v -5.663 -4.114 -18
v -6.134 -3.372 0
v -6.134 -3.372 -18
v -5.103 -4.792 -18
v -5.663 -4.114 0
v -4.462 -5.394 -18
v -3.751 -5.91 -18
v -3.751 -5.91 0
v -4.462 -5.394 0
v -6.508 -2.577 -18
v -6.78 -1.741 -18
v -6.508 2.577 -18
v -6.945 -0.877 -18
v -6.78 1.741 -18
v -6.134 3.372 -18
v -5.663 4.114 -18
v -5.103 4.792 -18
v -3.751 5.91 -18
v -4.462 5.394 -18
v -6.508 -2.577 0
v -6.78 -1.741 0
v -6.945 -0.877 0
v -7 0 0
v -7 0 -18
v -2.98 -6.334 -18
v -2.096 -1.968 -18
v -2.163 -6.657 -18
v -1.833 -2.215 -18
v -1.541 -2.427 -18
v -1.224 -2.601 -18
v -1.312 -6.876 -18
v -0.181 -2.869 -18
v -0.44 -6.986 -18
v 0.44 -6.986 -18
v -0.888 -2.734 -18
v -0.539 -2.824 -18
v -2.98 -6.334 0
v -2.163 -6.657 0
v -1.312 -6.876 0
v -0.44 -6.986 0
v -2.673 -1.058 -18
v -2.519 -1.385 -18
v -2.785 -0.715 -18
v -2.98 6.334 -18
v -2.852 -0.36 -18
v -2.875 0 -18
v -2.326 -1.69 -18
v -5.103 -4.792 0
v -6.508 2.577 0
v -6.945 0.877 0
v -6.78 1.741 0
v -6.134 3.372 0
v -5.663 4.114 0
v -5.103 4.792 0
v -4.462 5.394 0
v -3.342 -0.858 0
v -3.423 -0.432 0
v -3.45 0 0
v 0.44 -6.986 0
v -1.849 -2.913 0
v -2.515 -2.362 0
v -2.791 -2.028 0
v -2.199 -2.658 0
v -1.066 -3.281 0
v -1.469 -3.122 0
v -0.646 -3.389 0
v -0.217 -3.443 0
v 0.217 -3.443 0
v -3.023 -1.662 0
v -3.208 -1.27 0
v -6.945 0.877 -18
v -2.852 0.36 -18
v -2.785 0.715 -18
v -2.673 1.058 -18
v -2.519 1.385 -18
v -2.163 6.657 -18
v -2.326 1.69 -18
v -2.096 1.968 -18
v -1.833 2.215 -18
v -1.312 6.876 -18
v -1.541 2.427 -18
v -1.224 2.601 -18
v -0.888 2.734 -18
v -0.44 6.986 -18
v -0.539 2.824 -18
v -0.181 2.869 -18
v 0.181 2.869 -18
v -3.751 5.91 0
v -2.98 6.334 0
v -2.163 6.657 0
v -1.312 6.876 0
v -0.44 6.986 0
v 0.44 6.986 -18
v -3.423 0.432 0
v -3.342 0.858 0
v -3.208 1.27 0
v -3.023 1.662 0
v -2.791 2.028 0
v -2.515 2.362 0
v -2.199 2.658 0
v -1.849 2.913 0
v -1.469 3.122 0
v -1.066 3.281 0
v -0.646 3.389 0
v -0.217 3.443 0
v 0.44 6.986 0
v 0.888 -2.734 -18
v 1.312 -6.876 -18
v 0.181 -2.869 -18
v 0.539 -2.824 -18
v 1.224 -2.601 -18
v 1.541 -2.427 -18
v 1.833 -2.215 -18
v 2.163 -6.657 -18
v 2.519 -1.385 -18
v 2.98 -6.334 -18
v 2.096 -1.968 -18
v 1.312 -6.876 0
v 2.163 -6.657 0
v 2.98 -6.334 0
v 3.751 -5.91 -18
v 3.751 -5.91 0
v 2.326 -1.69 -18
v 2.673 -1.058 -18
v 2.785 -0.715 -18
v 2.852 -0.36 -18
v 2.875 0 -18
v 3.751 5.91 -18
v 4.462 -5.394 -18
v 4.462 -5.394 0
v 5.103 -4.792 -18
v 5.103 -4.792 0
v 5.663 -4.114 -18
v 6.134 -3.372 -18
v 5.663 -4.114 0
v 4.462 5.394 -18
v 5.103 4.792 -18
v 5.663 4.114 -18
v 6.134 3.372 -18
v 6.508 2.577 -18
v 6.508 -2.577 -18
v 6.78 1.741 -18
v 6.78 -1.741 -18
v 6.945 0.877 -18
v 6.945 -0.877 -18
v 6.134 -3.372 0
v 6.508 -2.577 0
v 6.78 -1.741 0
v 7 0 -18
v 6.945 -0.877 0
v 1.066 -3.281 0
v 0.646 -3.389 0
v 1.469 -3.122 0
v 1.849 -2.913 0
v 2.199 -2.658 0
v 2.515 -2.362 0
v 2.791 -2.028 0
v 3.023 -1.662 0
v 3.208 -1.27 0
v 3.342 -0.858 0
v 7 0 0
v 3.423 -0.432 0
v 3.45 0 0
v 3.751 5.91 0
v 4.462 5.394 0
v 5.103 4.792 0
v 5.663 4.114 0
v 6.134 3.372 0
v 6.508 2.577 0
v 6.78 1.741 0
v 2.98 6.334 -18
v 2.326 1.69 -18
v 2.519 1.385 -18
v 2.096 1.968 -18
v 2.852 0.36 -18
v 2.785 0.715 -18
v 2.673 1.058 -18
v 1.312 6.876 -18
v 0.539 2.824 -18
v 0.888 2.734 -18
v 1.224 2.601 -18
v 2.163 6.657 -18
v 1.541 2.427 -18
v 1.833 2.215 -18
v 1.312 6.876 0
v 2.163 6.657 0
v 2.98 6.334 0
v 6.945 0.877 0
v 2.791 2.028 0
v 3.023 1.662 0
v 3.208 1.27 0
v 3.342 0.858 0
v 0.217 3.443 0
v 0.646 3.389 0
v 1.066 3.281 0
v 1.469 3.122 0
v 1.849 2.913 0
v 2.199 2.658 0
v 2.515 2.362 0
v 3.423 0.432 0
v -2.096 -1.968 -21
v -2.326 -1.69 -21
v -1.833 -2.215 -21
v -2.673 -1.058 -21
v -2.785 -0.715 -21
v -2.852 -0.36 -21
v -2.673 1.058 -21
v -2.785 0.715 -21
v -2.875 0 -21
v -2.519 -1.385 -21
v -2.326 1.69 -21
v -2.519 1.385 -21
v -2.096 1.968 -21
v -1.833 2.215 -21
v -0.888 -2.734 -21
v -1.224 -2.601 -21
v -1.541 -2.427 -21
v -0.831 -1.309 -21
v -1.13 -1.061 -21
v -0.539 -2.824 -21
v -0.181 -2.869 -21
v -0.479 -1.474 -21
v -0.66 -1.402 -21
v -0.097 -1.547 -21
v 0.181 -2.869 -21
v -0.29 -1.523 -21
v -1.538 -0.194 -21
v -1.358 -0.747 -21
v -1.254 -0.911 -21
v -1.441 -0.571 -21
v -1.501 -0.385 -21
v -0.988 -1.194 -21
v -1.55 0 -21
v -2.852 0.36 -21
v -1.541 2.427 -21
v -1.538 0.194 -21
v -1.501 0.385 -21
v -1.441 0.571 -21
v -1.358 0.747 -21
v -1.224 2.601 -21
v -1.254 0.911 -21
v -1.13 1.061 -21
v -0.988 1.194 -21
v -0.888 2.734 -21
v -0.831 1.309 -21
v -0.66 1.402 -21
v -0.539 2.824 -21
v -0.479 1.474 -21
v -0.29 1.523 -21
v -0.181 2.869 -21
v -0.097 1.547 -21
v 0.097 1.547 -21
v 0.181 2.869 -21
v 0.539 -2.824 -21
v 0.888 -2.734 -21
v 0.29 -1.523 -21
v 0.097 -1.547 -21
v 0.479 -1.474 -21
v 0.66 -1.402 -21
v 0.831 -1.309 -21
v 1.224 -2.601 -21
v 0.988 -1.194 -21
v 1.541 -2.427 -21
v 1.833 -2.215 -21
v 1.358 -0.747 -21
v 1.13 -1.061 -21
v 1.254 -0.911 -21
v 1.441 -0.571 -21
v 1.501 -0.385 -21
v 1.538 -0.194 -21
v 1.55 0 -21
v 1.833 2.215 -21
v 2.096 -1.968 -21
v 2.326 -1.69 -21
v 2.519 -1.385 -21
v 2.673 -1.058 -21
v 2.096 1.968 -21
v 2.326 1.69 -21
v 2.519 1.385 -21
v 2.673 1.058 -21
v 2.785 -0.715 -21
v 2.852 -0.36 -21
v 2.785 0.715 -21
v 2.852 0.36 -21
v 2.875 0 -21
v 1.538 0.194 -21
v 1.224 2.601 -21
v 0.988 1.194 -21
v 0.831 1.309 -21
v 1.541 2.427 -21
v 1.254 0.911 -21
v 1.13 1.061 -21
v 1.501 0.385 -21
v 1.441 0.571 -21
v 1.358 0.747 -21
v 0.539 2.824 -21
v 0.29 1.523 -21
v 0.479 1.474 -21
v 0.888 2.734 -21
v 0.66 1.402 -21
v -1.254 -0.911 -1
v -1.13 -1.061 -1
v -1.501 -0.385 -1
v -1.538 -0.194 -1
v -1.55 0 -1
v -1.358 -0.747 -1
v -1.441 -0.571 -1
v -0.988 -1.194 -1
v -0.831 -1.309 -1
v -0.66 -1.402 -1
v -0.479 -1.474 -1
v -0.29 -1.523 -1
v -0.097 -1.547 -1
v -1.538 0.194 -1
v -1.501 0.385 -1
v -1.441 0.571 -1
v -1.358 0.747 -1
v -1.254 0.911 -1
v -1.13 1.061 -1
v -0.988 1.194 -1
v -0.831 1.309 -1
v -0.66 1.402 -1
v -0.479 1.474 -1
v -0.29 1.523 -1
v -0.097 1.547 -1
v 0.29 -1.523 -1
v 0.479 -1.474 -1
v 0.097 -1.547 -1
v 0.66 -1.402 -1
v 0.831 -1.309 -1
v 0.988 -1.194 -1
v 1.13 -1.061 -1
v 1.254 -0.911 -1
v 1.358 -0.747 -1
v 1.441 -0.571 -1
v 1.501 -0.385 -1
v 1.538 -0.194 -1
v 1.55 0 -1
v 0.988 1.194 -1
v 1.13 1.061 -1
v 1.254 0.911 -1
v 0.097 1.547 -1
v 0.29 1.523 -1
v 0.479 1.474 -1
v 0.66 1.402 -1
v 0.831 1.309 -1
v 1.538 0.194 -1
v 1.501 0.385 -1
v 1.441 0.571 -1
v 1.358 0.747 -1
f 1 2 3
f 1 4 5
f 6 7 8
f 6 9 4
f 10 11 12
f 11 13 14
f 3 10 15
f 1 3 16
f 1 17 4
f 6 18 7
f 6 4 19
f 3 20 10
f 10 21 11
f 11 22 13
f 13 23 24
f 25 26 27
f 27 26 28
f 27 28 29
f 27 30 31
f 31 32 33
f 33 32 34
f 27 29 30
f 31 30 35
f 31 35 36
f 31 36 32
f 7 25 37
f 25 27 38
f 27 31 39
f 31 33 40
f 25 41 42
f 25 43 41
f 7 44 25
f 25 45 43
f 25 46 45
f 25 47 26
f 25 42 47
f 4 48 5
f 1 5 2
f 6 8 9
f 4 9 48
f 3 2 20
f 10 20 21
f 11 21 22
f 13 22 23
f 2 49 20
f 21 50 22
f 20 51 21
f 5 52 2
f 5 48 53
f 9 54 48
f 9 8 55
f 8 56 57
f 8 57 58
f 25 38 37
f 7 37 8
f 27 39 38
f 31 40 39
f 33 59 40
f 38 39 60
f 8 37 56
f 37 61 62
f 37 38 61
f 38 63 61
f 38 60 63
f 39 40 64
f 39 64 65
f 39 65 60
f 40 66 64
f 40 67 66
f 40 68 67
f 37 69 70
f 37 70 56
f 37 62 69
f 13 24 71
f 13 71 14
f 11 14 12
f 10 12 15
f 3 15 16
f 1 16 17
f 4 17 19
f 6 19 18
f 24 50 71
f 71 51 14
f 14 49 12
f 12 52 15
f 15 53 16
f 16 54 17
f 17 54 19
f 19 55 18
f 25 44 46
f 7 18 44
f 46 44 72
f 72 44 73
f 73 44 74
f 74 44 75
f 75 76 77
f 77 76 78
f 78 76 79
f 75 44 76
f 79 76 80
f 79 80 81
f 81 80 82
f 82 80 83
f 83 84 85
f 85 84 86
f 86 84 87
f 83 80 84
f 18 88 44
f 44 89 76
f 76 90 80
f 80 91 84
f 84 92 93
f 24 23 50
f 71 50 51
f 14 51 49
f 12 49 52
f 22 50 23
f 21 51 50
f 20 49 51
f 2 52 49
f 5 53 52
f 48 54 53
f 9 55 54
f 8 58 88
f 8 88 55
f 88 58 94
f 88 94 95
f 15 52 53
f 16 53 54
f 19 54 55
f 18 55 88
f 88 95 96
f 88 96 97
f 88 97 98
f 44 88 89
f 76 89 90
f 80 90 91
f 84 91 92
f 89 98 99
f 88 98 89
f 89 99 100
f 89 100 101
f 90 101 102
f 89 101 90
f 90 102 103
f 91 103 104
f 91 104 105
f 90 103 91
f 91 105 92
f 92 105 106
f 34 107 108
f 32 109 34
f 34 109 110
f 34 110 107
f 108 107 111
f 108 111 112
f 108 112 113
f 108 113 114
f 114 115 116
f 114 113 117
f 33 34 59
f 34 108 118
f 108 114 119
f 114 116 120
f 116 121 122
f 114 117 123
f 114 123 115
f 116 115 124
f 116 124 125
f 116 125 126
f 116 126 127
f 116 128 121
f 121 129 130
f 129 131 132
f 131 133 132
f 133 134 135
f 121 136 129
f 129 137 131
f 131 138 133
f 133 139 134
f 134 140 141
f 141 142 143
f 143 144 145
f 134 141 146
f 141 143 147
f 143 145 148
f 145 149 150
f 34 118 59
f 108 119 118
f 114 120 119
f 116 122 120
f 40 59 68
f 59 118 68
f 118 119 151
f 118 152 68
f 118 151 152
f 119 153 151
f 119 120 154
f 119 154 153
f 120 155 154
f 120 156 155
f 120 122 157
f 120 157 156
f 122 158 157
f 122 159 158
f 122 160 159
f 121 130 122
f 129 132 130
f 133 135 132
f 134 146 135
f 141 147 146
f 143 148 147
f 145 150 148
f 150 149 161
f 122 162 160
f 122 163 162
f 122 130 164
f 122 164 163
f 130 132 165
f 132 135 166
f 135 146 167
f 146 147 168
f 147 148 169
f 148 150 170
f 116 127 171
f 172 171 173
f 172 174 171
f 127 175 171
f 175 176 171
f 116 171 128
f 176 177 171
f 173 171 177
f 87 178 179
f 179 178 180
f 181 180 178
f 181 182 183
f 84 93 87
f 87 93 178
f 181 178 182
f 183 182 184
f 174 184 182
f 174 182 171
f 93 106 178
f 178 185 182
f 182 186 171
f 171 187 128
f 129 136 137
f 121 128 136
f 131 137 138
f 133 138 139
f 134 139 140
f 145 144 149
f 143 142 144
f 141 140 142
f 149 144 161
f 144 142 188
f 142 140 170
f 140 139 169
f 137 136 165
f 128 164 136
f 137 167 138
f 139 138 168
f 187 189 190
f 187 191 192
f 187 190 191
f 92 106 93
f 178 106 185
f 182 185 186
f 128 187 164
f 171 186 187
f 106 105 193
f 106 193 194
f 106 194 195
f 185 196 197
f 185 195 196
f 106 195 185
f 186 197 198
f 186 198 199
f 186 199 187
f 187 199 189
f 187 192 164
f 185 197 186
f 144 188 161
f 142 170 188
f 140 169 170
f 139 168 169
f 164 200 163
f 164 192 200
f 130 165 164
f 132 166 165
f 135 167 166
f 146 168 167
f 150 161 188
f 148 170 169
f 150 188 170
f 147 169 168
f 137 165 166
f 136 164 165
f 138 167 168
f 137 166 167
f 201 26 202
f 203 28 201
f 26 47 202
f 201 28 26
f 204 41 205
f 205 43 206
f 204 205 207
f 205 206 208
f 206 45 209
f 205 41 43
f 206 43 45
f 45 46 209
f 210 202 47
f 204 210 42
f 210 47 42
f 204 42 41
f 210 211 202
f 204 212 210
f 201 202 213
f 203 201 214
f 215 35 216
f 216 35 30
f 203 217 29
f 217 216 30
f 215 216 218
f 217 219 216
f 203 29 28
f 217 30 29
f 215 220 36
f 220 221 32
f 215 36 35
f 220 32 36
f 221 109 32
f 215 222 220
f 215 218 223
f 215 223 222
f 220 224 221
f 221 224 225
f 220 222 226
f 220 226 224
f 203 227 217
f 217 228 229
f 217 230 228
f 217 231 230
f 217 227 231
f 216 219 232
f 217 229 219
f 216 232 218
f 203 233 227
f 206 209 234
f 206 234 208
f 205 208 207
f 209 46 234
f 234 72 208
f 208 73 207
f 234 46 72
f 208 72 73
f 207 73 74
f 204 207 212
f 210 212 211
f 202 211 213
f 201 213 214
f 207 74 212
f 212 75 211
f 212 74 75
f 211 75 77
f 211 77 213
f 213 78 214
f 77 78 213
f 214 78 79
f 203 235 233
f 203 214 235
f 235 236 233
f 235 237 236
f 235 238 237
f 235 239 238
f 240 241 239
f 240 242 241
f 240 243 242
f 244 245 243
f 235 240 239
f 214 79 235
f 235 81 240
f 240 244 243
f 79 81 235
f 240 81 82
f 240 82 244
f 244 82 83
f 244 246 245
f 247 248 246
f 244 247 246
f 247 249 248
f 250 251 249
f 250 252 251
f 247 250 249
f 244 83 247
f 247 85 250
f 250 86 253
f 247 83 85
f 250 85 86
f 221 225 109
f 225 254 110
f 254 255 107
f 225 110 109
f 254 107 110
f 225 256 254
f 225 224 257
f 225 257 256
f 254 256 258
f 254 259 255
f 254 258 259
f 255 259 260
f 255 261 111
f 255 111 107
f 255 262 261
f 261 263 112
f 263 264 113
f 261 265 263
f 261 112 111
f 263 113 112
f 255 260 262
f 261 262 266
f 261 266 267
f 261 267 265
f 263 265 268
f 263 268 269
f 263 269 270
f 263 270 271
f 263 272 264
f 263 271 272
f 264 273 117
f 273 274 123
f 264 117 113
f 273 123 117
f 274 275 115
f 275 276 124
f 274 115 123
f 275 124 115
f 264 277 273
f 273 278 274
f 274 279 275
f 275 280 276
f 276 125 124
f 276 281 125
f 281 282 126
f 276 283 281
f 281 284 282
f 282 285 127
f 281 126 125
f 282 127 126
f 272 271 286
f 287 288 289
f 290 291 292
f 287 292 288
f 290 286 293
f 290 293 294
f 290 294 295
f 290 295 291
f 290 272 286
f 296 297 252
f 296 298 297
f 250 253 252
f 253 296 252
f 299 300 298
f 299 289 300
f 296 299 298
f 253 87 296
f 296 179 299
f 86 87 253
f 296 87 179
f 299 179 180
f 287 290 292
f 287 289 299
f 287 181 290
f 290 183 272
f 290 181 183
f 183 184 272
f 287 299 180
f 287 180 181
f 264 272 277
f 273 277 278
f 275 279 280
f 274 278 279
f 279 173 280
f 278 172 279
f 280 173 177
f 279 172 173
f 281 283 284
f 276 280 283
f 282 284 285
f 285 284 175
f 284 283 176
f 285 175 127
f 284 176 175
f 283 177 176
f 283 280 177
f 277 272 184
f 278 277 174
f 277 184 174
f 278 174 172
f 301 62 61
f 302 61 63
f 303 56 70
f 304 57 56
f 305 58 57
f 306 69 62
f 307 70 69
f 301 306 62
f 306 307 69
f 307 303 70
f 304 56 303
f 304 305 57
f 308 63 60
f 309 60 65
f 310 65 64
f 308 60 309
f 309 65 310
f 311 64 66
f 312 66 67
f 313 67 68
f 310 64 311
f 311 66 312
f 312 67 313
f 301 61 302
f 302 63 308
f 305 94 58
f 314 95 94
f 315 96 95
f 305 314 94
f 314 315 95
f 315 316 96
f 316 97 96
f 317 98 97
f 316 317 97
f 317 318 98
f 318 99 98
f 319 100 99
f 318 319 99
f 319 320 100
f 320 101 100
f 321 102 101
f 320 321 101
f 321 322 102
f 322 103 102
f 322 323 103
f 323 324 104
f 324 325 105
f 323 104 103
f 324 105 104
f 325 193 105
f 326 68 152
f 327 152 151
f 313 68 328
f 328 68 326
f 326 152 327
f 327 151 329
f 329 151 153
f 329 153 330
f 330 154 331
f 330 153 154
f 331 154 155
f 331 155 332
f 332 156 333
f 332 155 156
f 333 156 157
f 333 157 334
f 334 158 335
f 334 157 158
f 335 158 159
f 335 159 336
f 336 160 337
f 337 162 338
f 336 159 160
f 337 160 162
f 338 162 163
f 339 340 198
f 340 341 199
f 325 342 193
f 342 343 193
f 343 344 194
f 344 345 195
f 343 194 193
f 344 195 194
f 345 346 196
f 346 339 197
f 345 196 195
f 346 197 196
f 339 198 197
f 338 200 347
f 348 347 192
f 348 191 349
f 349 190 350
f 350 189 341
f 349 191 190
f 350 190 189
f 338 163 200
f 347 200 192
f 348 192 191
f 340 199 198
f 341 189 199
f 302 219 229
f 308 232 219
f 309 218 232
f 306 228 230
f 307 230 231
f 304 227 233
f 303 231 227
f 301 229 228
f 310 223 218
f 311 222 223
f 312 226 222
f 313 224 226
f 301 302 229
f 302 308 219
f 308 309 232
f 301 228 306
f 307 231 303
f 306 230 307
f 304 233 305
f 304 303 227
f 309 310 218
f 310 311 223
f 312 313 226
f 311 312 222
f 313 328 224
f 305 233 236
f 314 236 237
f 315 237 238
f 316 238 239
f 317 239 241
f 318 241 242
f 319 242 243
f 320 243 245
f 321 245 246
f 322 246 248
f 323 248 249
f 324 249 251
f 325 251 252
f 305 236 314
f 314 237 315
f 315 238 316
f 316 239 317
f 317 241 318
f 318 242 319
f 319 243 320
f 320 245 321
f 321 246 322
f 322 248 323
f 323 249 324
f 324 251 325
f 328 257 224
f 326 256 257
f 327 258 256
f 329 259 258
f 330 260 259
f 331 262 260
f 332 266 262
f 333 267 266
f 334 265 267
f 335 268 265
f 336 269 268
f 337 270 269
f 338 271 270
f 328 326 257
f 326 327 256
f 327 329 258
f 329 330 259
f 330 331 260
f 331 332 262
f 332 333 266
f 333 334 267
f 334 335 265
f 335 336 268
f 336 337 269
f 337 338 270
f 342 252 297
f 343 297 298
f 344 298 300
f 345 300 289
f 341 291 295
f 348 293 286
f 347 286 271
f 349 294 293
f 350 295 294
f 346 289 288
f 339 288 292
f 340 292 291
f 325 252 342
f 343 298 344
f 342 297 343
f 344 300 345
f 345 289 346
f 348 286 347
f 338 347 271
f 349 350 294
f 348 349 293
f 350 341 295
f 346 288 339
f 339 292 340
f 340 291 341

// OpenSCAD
$fn = 50;

difference() {
	union() {
		translate(v = [0, 0, -18.0]) {
			cylinder(h = 18, r = 7.0);
		}
		#translate(v = [0, 0, -21.0]) {
			cylinder(h = 21, r = 2.875);
		}
	}
	union() {
		translate(v = [0, 0, 0]) {
			rotate(a = [0, 0, 0]) {
				difference() {
					union() {
						translate(v = [0, 0, -21.0]) {
							cylinder(h = 21, r = 1.25);
						}
						translate(v = [0, 0, -1.0]) {
							cylinder(h = 1.0, r1 = 1.55, r2 = 3.45);
						}
						translate(v = [0, 0, -21.0]) {
							cylinder(h = 21, r = 1.55);
						}
						translate(v = [0, 0, -21.0]) {
							cylinder(h = 21, r = 1.25);
						}
					}
					union();
				}
			}
		}
	}
}
